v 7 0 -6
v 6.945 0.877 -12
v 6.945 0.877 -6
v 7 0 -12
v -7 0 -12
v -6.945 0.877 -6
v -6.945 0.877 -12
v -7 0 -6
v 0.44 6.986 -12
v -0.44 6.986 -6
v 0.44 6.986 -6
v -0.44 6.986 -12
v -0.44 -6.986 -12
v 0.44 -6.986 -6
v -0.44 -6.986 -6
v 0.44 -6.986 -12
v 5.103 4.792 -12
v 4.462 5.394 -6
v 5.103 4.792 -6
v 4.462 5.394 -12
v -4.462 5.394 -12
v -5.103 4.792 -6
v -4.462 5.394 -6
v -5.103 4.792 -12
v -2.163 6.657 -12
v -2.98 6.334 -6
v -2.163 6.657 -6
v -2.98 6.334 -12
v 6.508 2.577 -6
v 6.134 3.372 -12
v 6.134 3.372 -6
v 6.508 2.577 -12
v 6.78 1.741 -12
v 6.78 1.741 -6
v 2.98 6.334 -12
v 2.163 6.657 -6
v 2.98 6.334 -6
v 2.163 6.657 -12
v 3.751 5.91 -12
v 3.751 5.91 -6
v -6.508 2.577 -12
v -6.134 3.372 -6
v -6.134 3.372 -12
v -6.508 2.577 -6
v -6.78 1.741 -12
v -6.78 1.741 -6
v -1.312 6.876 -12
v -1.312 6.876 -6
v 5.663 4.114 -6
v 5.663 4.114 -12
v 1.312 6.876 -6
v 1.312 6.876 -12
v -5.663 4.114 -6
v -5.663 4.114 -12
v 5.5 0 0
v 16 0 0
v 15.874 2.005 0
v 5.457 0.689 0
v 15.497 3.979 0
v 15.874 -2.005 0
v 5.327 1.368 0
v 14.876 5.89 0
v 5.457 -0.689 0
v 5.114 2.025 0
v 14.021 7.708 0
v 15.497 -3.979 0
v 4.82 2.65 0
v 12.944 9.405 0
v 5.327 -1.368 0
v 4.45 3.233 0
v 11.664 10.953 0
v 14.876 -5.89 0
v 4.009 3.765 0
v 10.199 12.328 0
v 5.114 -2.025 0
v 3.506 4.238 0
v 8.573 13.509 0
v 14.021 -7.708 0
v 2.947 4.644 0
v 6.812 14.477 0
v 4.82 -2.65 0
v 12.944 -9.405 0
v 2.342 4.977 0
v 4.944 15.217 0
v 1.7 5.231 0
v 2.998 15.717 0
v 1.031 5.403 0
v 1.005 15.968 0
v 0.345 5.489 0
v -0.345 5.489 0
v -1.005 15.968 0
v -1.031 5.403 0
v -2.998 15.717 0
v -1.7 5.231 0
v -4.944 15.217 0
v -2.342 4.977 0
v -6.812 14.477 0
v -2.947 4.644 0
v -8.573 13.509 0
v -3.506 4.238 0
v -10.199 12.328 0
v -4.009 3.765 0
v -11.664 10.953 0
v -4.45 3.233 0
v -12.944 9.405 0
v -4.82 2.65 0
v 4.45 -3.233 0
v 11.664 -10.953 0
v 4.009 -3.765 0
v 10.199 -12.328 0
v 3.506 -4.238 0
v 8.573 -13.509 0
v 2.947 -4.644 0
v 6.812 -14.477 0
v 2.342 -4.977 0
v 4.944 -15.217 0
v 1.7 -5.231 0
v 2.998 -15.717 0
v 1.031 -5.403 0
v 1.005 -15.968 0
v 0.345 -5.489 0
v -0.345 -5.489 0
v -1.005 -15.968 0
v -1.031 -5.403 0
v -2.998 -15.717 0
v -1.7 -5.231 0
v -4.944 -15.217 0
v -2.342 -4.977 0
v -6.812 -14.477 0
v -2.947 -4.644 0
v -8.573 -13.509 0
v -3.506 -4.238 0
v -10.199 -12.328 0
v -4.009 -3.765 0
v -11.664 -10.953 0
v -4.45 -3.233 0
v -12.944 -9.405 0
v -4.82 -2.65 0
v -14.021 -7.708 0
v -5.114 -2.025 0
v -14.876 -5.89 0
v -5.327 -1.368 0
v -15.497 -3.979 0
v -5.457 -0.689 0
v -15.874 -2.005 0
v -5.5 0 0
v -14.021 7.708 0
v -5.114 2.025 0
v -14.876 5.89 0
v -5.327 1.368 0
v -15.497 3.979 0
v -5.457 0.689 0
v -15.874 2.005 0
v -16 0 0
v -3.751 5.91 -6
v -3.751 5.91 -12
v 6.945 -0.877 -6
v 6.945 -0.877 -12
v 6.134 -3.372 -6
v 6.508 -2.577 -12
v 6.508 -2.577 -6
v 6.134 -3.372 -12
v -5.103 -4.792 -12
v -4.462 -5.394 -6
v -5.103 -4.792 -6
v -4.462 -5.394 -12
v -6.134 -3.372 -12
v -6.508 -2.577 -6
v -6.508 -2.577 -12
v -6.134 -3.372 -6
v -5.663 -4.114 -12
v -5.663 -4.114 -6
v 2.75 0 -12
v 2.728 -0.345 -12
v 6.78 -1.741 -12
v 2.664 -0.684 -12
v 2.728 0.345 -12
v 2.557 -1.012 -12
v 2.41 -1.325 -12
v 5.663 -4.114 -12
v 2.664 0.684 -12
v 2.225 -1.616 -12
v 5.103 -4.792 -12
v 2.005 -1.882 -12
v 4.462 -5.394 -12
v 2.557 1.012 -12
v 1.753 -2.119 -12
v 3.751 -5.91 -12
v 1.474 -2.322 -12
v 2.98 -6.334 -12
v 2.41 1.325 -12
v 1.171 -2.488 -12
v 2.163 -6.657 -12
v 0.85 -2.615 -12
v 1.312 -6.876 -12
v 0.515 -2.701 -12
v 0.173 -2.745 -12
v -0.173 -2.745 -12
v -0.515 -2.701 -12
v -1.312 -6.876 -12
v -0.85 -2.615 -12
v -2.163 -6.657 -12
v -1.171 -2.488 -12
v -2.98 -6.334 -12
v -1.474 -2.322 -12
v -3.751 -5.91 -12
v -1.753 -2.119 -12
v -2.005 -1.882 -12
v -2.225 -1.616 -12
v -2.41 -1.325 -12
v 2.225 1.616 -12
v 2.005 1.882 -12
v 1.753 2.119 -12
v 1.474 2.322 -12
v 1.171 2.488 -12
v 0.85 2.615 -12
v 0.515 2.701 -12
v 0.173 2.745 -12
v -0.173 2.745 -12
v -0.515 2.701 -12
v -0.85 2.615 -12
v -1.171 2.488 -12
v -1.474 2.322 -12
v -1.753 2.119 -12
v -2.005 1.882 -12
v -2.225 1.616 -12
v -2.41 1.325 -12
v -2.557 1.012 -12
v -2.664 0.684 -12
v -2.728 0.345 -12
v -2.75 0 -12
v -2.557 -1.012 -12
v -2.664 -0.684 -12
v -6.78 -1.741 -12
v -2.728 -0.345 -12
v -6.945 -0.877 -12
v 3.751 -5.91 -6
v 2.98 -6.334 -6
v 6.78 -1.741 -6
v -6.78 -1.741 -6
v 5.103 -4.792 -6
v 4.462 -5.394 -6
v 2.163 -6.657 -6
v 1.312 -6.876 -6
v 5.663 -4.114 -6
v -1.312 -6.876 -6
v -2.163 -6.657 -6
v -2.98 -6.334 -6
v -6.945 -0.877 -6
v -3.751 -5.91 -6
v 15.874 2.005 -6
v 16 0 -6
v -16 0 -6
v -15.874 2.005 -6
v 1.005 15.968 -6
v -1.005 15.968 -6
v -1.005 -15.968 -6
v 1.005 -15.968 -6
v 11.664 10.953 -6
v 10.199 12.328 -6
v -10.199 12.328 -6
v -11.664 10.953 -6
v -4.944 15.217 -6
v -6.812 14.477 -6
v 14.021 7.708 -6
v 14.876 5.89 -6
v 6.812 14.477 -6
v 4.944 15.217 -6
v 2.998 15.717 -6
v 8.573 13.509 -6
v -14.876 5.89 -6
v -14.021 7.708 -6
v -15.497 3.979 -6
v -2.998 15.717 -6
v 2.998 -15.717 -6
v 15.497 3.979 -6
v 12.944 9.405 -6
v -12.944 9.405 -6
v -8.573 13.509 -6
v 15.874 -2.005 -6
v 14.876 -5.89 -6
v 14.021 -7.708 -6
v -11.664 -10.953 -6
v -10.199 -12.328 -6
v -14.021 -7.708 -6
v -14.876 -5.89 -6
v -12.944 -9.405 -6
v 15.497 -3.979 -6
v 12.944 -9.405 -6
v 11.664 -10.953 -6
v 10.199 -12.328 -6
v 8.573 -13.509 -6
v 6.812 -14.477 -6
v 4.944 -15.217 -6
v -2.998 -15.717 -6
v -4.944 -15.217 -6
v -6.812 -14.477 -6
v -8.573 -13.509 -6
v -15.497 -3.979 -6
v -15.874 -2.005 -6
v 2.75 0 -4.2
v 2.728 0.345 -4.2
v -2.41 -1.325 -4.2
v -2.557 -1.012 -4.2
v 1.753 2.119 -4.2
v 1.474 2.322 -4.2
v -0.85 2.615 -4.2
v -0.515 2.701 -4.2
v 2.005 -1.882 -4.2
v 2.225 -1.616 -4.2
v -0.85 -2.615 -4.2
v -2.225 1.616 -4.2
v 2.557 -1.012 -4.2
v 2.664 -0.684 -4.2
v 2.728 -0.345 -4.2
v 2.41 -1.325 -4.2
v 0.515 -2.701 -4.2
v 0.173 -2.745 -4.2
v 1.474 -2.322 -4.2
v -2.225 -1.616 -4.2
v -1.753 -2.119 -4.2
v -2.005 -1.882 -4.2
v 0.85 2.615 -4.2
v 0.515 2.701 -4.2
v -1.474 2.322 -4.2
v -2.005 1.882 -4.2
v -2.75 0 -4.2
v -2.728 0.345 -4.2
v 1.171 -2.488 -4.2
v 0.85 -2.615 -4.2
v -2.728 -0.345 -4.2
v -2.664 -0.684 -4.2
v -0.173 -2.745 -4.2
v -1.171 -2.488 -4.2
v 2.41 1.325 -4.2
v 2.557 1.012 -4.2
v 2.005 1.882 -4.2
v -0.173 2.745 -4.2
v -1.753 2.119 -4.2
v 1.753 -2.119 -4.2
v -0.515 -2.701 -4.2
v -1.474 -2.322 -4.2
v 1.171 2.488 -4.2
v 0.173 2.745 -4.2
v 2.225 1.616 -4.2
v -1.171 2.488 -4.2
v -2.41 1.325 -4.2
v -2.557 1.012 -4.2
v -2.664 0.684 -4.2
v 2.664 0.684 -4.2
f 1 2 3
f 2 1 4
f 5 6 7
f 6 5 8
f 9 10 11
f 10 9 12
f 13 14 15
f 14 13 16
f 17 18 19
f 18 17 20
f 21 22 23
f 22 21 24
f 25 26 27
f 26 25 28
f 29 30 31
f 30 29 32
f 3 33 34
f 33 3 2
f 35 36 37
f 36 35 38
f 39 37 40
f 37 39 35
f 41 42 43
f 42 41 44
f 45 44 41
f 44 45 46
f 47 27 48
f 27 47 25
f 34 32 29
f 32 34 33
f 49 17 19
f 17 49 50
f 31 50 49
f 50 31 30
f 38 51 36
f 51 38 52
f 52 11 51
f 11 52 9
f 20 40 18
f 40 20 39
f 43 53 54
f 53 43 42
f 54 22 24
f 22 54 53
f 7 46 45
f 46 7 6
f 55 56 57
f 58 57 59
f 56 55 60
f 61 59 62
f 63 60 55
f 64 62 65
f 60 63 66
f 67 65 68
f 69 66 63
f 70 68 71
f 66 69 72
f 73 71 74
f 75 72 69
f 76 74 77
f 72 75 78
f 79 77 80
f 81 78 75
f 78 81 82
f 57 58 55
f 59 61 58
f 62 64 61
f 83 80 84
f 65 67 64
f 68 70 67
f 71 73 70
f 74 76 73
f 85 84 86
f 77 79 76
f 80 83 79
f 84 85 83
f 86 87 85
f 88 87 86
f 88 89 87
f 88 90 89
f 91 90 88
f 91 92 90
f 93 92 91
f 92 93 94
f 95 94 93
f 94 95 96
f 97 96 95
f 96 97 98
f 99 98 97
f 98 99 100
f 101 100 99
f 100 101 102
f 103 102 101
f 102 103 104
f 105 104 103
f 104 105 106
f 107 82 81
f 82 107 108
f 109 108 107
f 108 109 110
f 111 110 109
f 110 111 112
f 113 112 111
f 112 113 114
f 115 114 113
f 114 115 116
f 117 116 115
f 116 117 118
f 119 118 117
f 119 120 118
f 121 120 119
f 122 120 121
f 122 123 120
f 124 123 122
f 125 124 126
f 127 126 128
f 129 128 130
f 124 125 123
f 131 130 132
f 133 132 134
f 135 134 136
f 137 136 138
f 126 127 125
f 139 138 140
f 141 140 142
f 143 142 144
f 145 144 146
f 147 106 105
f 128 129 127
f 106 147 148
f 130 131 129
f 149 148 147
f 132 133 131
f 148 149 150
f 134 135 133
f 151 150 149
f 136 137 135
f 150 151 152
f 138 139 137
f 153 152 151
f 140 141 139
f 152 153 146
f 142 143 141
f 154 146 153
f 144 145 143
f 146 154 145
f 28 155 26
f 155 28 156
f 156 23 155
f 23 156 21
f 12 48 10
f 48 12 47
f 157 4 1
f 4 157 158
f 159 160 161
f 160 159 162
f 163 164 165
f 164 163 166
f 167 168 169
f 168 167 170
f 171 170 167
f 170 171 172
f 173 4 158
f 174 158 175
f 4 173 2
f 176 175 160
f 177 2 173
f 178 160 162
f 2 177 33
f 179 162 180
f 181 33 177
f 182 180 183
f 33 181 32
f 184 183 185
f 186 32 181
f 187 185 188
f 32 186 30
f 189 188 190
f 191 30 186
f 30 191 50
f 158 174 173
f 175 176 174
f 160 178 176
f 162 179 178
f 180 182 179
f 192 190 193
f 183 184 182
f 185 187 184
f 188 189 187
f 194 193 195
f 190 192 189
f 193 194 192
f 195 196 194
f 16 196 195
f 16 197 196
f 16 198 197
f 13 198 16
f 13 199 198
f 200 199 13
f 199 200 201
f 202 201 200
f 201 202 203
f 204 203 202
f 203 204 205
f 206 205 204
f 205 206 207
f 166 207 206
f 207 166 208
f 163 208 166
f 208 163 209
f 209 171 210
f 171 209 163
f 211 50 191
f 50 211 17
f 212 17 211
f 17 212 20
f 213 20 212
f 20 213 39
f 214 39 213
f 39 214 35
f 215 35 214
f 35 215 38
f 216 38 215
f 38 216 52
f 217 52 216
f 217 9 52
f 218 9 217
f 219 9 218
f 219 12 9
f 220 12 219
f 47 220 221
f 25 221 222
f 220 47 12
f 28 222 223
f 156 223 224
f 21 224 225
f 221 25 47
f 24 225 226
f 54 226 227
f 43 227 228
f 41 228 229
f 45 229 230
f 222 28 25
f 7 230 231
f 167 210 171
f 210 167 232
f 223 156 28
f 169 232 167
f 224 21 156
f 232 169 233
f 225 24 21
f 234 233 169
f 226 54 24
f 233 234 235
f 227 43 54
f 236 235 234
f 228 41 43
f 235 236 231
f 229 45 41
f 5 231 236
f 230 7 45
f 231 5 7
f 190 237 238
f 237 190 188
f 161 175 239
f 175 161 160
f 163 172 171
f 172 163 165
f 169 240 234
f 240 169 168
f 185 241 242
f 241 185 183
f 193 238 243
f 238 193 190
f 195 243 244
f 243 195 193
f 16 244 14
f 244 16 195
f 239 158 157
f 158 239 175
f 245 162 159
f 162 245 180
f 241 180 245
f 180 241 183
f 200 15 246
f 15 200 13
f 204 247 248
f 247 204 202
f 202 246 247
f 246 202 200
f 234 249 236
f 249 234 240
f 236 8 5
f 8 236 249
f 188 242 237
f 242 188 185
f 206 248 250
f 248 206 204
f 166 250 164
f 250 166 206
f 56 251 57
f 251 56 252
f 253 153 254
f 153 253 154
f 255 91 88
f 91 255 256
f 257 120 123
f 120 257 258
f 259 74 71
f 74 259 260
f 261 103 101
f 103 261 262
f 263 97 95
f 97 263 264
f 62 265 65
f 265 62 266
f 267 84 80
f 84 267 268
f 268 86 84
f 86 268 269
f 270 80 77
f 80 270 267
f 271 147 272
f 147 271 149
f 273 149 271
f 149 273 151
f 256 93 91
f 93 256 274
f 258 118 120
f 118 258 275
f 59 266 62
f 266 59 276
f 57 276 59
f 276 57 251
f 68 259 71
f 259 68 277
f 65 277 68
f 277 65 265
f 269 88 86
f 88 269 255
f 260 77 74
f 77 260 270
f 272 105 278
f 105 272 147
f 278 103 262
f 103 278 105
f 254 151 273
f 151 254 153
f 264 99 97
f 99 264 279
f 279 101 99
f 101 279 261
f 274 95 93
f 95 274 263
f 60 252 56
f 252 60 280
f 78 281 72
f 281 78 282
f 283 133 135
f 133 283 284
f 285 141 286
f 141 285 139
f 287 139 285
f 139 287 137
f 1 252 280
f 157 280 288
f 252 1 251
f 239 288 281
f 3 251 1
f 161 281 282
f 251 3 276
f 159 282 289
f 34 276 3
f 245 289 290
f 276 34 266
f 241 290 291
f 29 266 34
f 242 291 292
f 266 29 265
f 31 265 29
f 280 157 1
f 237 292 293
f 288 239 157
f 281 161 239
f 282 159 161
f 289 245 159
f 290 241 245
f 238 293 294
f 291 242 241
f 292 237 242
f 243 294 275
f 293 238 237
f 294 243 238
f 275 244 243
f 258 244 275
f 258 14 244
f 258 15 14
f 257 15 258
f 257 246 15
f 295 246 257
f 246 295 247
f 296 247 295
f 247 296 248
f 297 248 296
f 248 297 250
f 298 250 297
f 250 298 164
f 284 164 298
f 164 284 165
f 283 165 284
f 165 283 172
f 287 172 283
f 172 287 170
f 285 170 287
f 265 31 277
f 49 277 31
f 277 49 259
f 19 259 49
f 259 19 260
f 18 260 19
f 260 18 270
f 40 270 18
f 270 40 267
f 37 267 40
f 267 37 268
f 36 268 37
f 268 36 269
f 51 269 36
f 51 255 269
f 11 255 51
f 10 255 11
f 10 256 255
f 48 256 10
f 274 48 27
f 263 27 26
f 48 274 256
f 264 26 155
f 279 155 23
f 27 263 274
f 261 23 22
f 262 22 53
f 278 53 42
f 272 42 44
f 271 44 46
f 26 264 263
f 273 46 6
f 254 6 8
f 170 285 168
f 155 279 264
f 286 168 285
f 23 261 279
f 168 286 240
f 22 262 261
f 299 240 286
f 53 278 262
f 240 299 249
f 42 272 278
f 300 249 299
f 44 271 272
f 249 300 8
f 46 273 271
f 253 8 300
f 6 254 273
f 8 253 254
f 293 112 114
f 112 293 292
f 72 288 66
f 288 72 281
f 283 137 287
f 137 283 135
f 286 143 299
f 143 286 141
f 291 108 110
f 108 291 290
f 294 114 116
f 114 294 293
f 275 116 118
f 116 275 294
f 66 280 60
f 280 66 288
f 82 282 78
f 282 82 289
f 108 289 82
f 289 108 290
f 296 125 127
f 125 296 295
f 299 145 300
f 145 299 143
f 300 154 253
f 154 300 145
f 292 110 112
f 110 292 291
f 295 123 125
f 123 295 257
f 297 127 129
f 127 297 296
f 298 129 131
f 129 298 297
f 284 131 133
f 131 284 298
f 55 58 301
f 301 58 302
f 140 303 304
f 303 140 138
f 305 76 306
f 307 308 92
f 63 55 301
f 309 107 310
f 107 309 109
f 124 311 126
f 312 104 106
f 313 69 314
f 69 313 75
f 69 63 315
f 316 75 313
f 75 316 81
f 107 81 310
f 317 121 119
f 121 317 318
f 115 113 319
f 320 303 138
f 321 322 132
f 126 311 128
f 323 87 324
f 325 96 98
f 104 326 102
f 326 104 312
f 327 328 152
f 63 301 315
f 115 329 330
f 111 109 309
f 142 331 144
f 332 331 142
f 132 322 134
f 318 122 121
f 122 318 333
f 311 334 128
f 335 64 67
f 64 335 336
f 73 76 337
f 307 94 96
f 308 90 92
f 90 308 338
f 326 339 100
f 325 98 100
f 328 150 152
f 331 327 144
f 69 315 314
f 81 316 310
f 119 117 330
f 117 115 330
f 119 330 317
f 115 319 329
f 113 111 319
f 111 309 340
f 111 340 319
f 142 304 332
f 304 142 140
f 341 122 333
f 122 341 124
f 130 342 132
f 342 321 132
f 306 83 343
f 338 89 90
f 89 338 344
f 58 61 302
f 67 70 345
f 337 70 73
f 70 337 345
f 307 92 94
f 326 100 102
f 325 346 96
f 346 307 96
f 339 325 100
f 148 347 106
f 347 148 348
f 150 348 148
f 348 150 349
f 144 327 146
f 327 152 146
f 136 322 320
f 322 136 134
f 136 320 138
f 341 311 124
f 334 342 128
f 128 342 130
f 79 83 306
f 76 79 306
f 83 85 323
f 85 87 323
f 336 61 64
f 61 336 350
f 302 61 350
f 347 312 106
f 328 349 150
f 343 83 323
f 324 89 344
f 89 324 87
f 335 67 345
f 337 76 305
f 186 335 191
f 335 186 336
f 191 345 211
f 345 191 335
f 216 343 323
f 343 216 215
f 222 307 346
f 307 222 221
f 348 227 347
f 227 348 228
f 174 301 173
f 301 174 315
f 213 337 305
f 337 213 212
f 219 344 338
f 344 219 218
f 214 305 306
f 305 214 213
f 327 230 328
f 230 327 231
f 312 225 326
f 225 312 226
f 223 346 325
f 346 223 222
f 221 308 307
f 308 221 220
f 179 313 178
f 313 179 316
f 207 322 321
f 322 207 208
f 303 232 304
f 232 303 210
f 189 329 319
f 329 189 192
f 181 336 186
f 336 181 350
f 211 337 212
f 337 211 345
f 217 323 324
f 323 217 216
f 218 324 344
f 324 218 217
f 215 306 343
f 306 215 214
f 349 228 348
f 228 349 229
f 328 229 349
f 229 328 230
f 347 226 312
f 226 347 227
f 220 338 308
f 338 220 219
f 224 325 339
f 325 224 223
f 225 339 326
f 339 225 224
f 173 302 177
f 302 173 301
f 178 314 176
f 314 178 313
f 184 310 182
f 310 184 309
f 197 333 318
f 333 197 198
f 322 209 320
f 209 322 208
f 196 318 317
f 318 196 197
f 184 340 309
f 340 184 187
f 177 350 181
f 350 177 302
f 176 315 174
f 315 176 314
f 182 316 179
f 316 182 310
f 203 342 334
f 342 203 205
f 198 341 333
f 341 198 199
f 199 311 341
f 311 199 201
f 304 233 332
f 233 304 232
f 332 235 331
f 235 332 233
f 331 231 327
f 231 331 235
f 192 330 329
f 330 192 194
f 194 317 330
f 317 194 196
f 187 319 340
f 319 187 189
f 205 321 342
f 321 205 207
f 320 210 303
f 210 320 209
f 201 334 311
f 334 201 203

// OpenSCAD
$fn = 50;


difference() {
	union() {
		translate(v = [0, 0, -12.0000000000]) {
			cylinder(h = 12, r = 7.0000000000);
		}
		translate(v = [0, 0, -6.0000000000]) {
			cylinder(h = 6, r = 16.0000000000);
		}
	}
	union() {
		translate(v = [0, 0, 0]) {
			rotate(a = [0, 0, 0]) {
				difference() {
					union() {
						#translate(v = [0, 0, -12.0000000000]) {
							cylinder(h = 12, r = 2.2500000000);
						}
						#translate(v = [0, 0, -4.2000000000]) {
							cylinder(h = 4.2000000000, r1 = 2.7500000000, r2 = 5.5000000000);
						}
						#translate(v = [0, 0, -12.0000000000]) {
							cylinder(h = 12, r = 2.7500000000);
						}
						#translate(v = [0, 0, -12.0000000000]) {
							cylinder(h = 12, r = 2.2500000000);
						}
					}
					union();
				}
			}
		}
	}
}
